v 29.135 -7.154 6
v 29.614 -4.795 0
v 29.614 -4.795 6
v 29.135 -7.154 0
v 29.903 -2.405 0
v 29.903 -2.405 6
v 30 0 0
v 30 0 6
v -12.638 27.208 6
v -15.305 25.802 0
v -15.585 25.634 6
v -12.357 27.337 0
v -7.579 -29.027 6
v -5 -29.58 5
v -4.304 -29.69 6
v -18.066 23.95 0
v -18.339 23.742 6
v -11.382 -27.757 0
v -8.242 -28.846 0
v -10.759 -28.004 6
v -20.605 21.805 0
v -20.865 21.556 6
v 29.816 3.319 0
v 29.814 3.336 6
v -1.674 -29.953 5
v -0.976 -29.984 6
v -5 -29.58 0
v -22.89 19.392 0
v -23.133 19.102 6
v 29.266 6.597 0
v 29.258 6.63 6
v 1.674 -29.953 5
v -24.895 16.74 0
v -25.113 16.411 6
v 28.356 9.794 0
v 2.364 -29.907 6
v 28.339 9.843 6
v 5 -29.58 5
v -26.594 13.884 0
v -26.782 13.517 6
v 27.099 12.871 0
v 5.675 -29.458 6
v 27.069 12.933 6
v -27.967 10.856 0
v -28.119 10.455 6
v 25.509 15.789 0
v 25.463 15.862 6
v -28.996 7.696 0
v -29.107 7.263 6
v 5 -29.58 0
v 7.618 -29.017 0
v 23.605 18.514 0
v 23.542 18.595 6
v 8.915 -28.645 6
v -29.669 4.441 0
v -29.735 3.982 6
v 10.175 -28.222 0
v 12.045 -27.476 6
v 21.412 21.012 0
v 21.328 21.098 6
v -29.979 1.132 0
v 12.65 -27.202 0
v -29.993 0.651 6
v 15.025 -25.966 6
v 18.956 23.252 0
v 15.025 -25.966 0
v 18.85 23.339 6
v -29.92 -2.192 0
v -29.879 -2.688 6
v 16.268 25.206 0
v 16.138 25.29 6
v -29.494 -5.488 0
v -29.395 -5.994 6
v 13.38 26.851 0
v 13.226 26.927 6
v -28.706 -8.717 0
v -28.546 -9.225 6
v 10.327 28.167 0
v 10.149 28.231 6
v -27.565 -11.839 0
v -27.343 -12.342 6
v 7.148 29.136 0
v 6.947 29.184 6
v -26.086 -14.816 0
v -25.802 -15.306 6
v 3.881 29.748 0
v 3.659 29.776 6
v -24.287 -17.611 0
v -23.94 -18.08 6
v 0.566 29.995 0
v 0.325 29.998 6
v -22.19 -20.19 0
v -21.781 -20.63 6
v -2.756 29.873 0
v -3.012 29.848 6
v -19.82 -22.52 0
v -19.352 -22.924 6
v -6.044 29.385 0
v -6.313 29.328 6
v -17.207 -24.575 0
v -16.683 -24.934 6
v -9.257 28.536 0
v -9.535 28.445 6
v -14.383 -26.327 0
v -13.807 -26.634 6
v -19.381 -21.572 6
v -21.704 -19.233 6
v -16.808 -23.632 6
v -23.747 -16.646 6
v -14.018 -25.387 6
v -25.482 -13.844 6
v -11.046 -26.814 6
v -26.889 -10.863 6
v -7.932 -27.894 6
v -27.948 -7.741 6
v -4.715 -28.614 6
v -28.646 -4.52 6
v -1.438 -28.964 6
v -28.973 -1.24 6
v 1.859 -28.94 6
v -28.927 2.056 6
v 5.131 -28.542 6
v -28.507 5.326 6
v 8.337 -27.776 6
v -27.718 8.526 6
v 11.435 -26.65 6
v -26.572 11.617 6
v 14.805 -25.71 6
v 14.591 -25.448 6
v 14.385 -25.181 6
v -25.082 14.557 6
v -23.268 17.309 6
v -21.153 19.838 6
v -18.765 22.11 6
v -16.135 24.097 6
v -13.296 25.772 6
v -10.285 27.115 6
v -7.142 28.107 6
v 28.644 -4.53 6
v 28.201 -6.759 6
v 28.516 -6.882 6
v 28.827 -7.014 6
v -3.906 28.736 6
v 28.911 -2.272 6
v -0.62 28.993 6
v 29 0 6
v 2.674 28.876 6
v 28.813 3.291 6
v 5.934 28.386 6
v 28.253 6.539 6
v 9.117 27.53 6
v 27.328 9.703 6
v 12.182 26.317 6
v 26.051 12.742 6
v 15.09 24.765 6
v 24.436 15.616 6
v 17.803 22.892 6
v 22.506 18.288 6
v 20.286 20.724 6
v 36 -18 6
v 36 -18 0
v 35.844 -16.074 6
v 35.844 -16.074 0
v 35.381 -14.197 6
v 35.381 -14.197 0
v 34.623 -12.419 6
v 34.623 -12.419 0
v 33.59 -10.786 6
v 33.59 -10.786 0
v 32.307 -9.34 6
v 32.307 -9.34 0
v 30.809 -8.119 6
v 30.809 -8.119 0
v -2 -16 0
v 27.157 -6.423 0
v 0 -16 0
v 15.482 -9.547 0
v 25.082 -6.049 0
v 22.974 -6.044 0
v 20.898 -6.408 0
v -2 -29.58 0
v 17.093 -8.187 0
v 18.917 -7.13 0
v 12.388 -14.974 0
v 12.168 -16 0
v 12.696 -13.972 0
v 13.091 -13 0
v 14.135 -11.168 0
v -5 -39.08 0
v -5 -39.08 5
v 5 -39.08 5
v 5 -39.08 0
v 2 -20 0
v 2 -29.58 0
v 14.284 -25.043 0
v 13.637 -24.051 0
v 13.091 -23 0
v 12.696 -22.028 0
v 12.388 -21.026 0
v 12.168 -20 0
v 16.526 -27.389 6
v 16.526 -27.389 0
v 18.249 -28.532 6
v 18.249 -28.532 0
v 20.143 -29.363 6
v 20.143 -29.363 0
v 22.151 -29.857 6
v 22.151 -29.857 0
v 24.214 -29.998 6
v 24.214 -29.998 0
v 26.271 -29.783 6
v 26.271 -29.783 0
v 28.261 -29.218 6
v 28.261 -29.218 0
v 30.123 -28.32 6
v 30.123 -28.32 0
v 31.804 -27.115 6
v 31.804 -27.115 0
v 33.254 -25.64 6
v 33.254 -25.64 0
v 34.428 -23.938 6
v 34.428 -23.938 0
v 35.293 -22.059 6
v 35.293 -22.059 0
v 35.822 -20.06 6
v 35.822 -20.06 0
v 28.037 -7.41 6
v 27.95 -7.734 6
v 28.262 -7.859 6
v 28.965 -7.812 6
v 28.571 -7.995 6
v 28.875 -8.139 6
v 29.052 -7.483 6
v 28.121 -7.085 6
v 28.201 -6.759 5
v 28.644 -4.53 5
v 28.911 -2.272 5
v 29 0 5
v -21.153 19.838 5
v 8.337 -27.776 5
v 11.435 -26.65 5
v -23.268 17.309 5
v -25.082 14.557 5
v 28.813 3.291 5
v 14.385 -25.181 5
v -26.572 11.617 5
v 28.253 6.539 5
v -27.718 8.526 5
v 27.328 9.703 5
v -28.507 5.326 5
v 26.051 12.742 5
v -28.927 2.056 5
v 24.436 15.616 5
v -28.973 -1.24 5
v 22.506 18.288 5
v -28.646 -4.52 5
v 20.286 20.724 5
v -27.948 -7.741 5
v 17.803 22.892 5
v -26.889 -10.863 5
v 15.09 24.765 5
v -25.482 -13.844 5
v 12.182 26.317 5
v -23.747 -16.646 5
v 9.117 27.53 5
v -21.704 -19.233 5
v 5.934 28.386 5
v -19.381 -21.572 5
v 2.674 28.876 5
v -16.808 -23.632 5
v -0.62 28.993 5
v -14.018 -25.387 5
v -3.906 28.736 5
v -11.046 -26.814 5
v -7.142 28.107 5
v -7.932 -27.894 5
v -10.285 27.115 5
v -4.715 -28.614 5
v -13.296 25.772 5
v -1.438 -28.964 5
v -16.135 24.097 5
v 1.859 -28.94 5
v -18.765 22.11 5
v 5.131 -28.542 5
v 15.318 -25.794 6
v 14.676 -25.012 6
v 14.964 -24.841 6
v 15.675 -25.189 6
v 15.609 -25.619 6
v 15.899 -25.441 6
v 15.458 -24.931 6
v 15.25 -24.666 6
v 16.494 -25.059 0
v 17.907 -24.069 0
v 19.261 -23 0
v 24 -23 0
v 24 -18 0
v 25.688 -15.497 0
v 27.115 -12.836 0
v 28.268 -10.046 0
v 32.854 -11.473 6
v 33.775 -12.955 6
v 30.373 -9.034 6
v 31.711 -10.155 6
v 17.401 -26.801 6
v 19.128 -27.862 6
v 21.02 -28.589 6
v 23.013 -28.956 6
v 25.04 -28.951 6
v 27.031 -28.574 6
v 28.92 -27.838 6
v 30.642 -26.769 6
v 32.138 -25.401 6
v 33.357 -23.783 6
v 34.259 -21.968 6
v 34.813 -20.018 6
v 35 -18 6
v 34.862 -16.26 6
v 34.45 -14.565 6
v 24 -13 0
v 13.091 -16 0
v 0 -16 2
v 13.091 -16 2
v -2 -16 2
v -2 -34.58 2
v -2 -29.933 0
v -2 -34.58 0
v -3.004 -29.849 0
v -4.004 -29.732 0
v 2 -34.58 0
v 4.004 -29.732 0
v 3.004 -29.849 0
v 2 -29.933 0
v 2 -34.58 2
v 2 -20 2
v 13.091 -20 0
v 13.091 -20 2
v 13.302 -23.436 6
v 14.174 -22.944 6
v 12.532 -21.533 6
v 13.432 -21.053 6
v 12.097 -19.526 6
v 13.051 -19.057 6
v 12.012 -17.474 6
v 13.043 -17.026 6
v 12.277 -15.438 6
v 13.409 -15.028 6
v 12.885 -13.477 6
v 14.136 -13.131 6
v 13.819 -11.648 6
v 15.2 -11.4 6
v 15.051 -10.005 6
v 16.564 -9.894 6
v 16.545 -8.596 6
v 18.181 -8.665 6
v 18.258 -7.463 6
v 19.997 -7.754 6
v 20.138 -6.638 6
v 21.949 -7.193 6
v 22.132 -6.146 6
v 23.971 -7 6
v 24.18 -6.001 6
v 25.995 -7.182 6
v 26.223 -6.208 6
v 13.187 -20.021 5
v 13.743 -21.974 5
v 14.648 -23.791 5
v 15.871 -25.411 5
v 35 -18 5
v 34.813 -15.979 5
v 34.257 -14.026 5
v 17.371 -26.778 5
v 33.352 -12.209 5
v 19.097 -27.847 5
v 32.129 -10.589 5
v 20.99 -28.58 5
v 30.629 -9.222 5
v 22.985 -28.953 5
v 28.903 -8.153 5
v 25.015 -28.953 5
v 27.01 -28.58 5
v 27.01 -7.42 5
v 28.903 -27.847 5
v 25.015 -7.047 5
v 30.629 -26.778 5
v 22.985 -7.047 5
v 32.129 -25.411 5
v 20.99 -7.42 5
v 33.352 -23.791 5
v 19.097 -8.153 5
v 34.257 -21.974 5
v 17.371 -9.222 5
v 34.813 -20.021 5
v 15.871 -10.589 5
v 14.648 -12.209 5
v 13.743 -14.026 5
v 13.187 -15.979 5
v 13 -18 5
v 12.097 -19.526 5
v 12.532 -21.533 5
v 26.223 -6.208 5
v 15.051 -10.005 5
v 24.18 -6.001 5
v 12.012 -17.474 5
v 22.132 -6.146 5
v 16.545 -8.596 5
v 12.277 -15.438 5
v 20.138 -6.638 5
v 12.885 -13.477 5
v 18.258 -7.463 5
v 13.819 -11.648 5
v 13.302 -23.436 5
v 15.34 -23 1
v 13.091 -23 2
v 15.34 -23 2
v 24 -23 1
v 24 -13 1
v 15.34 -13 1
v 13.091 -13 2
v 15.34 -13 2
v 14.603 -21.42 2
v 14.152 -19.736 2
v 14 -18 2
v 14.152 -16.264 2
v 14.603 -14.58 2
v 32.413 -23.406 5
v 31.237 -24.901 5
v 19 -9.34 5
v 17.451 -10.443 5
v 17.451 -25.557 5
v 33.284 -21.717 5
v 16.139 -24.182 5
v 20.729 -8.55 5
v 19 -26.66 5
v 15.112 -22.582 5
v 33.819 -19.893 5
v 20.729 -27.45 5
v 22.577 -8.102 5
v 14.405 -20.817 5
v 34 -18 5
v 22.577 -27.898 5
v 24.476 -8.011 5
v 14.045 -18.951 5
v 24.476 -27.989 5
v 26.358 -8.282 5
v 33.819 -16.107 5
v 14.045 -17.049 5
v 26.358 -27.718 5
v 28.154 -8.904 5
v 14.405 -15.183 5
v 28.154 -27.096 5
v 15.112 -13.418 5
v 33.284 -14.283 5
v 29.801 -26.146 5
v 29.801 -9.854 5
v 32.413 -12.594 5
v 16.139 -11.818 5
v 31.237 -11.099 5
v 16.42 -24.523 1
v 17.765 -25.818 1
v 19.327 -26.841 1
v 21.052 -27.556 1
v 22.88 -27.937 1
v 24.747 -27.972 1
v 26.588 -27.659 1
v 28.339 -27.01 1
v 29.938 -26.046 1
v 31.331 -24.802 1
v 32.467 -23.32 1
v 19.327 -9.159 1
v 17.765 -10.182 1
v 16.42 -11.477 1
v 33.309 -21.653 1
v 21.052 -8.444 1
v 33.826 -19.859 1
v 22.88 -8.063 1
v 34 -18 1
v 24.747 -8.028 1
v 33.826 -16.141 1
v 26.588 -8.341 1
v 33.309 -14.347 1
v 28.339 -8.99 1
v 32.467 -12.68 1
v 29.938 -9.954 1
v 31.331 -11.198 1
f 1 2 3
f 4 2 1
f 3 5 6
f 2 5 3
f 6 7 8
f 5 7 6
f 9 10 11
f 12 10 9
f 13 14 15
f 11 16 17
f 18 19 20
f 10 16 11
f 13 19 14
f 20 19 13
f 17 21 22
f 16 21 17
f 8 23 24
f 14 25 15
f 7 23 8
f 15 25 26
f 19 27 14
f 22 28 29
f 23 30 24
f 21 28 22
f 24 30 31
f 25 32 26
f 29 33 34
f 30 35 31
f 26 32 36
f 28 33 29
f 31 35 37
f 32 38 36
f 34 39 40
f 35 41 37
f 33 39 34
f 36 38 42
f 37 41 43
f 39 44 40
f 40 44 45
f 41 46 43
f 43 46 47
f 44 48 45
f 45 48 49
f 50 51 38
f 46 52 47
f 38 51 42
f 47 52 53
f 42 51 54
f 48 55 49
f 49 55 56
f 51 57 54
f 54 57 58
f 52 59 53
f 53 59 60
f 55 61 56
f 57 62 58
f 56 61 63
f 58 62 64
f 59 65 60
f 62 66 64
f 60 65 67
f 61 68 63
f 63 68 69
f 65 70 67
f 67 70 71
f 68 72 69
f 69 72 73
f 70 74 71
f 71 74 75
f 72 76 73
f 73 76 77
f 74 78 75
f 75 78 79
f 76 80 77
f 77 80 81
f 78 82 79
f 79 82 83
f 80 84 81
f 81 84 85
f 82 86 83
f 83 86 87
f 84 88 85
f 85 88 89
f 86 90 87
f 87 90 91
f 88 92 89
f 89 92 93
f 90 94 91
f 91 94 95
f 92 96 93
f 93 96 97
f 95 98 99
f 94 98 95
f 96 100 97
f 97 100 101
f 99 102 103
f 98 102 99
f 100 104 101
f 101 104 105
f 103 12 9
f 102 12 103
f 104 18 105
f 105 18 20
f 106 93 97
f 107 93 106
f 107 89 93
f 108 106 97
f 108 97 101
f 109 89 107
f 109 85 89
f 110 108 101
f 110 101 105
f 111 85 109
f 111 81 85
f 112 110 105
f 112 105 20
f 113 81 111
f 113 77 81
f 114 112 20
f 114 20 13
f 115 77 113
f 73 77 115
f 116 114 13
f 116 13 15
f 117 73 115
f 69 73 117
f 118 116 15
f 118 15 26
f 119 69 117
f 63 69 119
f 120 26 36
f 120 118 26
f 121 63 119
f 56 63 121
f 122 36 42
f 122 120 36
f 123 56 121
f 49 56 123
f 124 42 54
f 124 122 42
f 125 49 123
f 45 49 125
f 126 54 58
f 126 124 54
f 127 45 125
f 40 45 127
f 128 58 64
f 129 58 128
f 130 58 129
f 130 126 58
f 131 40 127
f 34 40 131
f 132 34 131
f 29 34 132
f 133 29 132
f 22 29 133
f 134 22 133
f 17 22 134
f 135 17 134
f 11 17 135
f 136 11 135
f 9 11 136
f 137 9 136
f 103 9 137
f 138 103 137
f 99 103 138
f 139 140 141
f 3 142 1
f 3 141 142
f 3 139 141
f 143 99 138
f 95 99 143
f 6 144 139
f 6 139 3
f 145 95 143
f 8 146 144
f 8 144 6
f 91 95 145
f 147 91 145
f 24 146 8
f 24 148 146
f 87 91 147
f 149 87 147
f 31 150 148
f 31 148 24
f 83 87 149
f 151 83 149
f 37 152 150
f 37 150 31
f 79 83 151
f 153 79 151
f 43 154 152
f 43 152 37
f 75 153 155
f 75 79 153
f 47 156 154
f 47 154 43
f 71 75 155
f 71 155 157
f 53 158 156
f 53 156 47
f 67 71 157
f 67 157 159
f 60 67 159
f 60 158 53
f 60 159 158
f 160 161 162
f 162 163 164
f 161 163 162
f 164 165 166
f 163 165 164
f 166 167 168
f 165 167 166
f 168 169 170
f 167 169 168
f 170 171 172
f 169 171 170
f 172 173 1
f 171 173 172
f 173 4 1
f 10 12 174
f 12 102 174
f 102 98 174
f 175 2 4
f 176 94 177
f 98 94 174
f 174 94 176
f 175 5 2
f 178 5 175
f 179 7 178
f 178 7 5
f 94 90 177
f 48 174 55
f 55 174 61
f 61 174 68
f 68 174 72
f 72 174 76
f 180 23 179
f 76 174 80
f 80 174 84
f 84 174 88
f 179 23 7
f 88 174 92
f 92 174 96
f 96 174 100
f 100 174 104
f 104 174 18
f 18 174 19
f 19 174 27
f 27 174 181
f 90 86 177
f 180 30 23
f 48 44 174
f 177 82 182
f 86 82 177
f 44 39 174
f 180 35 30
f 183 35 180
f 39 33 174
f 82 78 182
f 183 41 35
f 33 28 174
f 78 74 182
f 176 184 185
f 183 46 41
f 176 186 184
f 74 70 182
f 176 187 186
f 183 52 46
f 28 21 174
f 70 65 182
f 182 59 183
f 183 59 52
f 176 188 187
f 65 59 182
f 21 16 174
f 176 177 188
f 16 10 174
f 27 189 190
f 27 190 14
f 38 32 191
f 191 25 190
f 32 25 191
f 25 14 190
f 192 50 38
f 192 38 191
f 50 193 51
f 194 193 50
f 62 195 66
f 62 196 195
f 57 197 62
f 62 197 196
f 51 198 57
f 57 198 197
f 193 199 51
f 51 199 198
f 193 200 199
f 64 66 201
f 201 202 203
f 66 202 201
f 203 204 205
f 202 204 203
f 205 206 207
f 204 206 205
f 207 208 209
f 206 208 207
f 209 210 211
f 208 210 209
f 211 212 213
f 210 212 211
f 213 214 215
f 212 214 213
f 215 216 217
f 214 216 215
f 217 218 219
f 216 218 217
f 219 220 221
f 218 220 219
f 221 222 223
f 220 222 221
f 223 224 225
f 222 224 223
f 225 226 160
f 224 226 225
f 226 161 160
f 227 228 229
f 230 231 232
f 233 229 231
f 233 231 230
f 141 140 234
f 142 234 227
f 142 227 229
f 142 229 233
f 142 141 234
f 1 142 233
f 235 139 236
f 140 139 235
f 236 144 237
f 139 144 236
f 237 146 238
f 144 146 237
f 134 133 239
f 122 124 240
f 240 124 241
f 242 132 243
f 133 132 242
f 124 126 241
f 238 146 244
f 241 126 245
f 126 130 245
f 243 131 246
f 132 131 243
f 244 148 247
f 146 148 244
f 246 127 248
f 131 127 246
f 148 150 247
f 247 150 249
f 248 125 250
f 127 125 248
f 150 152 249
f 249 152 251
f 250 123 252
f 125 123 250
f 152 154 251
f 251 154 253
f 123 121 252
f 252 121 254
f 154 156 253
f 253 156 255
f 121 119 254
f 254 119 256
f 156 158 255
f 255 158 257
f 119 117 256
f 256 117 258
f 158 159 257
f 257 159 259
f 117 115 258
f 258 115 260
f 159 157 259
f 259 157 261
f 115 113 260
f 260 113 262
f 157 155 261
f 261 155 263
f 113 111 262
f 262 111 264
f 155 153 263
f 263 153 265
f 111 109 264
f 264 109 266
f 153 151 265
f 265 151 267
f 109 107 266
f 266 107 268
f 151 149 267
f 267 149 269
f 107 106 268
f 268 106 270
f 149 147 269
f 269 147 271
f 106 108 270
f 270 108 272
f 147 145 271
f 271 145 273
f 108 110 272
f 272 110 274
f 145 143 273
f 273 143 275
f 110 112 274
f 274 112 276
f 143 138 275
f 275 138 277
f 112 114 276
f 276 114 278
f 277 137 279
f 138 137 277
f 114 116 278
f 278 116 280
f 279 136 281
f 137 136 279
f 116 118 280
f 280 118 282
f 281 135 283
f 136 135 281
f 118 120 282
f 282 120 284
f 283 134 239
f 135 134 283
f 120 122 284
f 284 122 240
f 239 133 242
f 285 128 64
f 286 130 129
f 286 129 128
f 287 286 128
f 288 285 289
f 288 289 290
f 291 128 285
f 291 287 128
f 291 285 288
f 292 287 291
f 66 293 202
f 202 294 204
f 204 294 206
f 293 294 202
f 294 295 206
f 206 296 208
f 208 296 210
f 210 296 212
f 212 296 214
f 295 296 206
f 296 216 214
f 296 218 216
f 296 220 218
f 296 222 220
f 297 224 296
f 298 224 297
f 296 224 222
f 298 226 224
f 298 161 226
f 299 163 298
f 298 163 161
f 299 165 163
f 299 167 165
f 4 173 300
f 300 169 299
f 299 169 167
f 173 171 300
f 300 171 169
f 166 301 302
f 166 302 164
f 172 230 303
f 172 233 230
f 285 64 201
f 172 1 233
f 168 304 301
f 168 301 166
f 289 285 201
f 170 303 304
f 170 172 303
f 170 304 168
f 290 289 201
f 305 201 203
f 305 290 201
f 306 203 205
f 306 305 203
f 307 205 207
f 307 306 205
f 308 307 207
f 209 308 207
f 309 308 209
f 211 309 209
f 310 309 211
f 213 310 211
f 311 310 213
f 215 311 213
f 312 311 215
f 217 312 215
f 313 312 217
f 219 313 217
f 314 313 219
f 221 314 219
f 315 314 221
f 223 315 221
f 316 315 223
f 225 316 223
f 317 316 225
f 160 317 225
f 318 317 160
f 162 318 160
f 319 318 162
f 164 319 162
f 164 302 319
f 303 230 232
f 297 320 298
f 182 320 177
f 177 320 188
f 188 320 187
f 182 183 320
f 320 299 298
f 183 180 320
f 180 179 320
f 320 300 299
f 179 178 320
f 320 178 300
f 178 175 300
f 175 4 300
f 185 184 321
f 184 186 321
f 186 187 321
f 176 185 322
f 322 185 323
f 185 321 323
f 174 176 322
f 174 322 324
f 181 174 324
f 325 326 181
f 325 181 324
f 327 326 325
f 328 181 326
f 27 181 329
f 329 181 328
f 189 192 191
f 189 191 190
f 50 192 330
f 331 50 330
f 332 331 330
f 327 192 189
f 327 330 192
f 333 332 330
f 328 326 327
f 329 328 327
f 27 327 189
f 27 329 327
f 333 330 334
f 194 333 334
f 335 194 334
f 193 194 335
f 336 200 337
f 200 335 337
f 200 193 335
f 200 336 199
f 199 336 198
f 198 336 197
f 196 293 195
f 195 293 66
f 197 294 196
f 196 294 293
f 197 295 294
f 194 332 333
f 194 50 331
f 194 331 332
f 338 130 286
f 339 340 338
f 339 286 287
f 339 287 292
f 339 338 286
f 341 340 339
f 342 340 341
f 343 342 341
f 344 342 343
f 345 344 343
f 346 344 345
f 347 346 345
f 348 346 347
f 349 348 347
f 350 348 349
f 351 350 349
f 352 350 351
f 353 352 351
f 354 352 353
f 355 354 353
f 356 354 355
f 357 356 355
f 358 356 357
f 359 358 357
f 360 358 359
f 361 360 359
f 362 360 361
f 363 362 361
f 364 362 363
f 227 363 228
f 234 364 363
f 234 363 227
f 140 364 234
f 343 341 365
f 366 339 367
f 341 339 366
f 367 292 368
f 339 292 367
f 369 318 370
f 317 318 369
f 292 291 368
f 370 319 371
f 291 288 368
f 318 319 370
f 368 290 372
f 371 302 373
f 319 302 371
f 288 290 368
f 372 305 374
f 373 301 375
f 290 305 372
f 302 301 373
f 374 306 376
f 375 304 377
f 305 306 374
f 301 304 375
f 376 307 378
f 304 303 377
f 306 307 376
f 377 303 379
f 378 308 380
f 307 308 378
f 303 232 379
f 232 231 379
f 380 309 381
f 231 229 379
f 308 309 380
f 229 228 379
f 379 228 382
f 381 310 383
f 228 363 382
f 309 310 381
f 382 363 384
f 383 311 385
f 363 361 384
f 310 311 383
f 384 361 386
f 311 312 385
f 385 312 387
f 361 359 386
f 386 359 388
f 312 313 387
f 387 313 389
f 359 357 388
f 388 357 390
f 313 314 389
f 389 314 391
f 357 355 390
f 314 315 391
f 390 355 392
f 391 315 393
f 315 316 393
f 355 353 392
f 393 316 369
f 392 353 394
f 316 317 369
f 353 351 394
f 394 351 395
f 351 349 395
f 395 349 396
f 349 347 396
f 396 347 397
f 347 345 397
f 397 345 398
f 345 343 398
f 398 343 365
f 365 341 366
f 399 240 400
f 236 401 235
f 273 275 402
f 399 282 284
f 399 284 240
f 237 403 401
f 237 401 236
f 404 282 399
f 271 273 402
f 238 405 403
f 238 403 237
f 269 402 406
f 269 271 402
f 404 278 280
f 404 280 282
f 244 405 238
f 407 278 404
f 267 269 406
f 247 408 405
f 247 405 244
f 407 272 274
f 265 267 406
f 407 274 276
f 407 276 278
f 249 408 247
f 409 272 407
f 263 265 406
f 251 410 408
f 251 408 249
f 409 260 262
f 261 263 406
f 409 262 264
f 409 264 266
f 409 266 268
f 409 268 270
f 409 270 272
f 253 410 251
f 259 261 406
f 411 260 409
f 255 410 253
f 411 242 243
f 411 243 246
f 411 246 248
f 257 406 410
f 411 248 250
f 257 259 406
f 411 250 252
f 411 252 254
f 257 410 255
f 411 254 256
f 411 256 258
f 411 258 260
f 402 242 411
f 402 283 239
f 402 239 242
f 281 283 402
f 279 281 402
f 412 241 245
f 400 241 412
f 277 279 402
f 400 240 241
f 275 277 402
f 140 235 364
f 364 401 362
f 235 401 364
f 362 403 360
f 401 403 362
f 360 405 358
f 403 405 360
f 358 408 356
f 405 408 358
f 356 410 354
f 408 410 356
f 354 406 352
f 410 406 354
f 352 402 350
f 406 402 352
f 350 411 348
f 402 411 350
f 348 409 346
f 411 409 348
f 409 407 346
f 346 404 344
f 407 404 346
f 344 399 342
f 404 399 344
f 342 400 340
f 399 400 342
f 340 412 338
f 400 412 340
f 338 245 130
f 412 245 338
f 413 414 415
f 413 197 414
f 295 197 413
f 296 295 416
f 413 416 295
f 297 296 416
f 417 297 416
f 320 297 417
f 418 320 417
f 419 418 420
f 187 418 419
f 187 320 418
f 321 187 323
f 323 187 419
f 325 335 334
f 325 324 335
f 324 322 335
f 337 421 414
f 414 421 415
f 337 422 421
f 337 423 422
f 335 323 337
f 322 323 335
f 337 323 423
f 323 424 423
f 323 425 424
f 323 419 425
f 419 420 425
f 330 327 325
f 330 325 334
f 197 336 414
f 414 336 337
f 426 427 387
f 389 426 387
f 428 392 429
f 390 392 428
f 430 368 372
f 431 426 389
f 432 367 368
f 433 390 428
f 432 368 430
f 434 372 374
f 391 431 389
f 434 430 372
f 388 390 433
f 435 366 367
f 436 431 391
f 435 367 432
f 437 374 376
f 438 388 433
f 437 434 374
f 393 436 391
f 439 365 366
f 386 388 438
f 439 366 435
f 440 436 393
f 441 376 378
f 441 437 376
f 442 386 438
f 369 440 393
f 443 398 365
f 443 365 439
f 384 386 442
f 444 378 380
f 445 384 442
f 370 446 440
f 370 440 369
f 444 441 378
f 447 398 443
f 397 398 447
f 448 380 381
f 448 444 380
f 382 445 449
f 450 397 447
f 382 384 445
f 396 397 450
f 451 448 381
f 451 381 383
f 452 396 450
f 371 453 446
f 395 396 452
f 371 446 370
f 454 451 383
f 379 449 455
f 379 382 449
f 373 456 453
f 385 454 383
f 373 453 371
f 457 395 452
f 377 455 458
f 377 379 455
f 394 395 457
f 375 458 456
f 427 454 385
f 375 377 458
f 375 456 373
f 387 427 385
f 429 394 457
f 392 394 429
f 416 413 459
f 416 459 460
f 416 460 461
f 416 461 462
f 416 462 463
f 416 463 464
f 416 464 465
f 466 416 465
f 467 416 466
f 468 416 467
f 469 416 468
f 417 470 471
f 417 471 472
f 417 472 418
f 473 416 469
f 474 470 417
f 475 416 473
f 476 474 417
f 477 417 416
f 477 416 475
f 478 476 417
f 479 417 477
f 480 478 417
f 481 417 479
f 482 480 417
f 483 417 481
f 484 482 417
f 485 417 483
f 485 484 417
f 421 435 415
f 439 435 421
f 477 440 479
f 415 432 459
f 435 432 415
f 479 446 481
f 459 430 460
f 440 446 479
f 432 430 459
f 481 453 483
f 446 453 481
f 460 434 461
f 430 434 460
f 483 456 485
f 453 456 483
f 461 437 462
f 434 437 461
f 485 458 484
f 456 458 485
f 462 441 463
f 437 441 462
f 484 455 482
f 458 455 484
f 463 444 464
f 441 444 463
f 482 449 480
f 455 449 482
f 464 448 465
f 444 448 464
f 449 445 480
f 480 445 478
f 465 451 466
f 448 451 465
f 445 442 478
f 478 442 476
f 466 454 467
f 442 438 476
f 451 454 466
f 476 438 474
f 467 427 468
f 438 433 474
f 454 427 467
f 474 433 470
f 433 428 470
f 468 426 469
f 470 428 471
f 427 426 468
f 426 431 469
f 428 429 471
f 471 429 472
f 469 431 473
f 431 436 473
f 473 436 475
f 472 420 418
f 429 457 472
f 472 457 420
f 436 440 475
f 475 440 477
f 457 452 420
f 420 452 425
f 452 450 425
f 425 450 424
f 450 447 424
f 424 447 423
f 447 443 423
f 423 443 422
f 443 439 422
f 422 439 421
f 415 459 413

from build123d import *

# Parameters (mm, degrees)
SKETCH_R        = 30
PAD_DEPTH       = 6
SKETCH006_R     = 29
POCKET_DEPTH    = 1
SKETCH007_W     = 10
SKETCH007_H     = 9.5
PAD001_DEPTH    = 5
SKETCH002_R     = 12
PAD002_DEPTH    = 6
SKETCH003_R     = 11
POCKET001_DEPTH = 1
SKETCH004_R     = 10
POCKET002_DEPTH = 4
POCKET003_DEPTH = 2


with BuildPart() as part:
    # Sketch → Pad (new body)
    with BuildSketch(Plane.XY):
        Circle(SKETCH_R)
    extrude(amount=PAD_DEPTH)

    # Sketch006 (on Face3 of Pad) → Pocket (cut)
    with BuildSketch(Plane.XY.offset(6)):
        Circle(SKETCH006_R)
    extrude(amount=-POCKET_DEPTH, mode=Mode.SUBTRACT)

    # Sketch007 → Pad001 (join)
    with BuildSketch(Plane.XY):
        with Locations((0, -34.330399)):
            Rectangle(SKETCH007_W, SKETCH007_H)
    extrude(amount=PAD001_DEPTH)

    # Sketch002 → Pad002 (join)
    with BuildSketch(Plane.XY):
        with Locations((24, -18)):
            Circle(SKETCH002_R)
    extrude(amount=PAD002_DEPTH)

    # Sketch003 (on Face14 of Pad002) → Pocket001 (cut)
    with BuildSketch(Plane.XY.offset(6)):
        with Locations((24, -18)):
            Circle(SKETCH003_R)
    extrude(amount=-POCKET001_DEPTH, mode=Mode.SUBTRACT)

    # Sketch004 (on Face24 of Pocket001) → Pocket002 (cut)
    with BuildSketch(Plane.XY.offset(5)):
        with Locations((24, -18)):
            Circle(SKETCH004_R)
    extrude(amount=-POCKET002_DEPTH, mode=Mode.SUBTRACT)

    # Sketch005 → Pocket003 (cut)
    with BuildSketch(Plane(origin=(0, 0, 0), x_dir=(1, 0, 0), z_dir=(0, 0, -1))):
        Polygon((13.091288, 23), (24, 23), (24, 13), (13.091288, 13), (13.091288, 16), (0, 16), (-2, 16), (-2, 34.580399), (2, 34.580399), (2, 20), (13.091288, 20), align=None)
    extrude(amount=-POCKET003_DEPTH, mode=Mode.SUBTRACT)


solid = part.part
